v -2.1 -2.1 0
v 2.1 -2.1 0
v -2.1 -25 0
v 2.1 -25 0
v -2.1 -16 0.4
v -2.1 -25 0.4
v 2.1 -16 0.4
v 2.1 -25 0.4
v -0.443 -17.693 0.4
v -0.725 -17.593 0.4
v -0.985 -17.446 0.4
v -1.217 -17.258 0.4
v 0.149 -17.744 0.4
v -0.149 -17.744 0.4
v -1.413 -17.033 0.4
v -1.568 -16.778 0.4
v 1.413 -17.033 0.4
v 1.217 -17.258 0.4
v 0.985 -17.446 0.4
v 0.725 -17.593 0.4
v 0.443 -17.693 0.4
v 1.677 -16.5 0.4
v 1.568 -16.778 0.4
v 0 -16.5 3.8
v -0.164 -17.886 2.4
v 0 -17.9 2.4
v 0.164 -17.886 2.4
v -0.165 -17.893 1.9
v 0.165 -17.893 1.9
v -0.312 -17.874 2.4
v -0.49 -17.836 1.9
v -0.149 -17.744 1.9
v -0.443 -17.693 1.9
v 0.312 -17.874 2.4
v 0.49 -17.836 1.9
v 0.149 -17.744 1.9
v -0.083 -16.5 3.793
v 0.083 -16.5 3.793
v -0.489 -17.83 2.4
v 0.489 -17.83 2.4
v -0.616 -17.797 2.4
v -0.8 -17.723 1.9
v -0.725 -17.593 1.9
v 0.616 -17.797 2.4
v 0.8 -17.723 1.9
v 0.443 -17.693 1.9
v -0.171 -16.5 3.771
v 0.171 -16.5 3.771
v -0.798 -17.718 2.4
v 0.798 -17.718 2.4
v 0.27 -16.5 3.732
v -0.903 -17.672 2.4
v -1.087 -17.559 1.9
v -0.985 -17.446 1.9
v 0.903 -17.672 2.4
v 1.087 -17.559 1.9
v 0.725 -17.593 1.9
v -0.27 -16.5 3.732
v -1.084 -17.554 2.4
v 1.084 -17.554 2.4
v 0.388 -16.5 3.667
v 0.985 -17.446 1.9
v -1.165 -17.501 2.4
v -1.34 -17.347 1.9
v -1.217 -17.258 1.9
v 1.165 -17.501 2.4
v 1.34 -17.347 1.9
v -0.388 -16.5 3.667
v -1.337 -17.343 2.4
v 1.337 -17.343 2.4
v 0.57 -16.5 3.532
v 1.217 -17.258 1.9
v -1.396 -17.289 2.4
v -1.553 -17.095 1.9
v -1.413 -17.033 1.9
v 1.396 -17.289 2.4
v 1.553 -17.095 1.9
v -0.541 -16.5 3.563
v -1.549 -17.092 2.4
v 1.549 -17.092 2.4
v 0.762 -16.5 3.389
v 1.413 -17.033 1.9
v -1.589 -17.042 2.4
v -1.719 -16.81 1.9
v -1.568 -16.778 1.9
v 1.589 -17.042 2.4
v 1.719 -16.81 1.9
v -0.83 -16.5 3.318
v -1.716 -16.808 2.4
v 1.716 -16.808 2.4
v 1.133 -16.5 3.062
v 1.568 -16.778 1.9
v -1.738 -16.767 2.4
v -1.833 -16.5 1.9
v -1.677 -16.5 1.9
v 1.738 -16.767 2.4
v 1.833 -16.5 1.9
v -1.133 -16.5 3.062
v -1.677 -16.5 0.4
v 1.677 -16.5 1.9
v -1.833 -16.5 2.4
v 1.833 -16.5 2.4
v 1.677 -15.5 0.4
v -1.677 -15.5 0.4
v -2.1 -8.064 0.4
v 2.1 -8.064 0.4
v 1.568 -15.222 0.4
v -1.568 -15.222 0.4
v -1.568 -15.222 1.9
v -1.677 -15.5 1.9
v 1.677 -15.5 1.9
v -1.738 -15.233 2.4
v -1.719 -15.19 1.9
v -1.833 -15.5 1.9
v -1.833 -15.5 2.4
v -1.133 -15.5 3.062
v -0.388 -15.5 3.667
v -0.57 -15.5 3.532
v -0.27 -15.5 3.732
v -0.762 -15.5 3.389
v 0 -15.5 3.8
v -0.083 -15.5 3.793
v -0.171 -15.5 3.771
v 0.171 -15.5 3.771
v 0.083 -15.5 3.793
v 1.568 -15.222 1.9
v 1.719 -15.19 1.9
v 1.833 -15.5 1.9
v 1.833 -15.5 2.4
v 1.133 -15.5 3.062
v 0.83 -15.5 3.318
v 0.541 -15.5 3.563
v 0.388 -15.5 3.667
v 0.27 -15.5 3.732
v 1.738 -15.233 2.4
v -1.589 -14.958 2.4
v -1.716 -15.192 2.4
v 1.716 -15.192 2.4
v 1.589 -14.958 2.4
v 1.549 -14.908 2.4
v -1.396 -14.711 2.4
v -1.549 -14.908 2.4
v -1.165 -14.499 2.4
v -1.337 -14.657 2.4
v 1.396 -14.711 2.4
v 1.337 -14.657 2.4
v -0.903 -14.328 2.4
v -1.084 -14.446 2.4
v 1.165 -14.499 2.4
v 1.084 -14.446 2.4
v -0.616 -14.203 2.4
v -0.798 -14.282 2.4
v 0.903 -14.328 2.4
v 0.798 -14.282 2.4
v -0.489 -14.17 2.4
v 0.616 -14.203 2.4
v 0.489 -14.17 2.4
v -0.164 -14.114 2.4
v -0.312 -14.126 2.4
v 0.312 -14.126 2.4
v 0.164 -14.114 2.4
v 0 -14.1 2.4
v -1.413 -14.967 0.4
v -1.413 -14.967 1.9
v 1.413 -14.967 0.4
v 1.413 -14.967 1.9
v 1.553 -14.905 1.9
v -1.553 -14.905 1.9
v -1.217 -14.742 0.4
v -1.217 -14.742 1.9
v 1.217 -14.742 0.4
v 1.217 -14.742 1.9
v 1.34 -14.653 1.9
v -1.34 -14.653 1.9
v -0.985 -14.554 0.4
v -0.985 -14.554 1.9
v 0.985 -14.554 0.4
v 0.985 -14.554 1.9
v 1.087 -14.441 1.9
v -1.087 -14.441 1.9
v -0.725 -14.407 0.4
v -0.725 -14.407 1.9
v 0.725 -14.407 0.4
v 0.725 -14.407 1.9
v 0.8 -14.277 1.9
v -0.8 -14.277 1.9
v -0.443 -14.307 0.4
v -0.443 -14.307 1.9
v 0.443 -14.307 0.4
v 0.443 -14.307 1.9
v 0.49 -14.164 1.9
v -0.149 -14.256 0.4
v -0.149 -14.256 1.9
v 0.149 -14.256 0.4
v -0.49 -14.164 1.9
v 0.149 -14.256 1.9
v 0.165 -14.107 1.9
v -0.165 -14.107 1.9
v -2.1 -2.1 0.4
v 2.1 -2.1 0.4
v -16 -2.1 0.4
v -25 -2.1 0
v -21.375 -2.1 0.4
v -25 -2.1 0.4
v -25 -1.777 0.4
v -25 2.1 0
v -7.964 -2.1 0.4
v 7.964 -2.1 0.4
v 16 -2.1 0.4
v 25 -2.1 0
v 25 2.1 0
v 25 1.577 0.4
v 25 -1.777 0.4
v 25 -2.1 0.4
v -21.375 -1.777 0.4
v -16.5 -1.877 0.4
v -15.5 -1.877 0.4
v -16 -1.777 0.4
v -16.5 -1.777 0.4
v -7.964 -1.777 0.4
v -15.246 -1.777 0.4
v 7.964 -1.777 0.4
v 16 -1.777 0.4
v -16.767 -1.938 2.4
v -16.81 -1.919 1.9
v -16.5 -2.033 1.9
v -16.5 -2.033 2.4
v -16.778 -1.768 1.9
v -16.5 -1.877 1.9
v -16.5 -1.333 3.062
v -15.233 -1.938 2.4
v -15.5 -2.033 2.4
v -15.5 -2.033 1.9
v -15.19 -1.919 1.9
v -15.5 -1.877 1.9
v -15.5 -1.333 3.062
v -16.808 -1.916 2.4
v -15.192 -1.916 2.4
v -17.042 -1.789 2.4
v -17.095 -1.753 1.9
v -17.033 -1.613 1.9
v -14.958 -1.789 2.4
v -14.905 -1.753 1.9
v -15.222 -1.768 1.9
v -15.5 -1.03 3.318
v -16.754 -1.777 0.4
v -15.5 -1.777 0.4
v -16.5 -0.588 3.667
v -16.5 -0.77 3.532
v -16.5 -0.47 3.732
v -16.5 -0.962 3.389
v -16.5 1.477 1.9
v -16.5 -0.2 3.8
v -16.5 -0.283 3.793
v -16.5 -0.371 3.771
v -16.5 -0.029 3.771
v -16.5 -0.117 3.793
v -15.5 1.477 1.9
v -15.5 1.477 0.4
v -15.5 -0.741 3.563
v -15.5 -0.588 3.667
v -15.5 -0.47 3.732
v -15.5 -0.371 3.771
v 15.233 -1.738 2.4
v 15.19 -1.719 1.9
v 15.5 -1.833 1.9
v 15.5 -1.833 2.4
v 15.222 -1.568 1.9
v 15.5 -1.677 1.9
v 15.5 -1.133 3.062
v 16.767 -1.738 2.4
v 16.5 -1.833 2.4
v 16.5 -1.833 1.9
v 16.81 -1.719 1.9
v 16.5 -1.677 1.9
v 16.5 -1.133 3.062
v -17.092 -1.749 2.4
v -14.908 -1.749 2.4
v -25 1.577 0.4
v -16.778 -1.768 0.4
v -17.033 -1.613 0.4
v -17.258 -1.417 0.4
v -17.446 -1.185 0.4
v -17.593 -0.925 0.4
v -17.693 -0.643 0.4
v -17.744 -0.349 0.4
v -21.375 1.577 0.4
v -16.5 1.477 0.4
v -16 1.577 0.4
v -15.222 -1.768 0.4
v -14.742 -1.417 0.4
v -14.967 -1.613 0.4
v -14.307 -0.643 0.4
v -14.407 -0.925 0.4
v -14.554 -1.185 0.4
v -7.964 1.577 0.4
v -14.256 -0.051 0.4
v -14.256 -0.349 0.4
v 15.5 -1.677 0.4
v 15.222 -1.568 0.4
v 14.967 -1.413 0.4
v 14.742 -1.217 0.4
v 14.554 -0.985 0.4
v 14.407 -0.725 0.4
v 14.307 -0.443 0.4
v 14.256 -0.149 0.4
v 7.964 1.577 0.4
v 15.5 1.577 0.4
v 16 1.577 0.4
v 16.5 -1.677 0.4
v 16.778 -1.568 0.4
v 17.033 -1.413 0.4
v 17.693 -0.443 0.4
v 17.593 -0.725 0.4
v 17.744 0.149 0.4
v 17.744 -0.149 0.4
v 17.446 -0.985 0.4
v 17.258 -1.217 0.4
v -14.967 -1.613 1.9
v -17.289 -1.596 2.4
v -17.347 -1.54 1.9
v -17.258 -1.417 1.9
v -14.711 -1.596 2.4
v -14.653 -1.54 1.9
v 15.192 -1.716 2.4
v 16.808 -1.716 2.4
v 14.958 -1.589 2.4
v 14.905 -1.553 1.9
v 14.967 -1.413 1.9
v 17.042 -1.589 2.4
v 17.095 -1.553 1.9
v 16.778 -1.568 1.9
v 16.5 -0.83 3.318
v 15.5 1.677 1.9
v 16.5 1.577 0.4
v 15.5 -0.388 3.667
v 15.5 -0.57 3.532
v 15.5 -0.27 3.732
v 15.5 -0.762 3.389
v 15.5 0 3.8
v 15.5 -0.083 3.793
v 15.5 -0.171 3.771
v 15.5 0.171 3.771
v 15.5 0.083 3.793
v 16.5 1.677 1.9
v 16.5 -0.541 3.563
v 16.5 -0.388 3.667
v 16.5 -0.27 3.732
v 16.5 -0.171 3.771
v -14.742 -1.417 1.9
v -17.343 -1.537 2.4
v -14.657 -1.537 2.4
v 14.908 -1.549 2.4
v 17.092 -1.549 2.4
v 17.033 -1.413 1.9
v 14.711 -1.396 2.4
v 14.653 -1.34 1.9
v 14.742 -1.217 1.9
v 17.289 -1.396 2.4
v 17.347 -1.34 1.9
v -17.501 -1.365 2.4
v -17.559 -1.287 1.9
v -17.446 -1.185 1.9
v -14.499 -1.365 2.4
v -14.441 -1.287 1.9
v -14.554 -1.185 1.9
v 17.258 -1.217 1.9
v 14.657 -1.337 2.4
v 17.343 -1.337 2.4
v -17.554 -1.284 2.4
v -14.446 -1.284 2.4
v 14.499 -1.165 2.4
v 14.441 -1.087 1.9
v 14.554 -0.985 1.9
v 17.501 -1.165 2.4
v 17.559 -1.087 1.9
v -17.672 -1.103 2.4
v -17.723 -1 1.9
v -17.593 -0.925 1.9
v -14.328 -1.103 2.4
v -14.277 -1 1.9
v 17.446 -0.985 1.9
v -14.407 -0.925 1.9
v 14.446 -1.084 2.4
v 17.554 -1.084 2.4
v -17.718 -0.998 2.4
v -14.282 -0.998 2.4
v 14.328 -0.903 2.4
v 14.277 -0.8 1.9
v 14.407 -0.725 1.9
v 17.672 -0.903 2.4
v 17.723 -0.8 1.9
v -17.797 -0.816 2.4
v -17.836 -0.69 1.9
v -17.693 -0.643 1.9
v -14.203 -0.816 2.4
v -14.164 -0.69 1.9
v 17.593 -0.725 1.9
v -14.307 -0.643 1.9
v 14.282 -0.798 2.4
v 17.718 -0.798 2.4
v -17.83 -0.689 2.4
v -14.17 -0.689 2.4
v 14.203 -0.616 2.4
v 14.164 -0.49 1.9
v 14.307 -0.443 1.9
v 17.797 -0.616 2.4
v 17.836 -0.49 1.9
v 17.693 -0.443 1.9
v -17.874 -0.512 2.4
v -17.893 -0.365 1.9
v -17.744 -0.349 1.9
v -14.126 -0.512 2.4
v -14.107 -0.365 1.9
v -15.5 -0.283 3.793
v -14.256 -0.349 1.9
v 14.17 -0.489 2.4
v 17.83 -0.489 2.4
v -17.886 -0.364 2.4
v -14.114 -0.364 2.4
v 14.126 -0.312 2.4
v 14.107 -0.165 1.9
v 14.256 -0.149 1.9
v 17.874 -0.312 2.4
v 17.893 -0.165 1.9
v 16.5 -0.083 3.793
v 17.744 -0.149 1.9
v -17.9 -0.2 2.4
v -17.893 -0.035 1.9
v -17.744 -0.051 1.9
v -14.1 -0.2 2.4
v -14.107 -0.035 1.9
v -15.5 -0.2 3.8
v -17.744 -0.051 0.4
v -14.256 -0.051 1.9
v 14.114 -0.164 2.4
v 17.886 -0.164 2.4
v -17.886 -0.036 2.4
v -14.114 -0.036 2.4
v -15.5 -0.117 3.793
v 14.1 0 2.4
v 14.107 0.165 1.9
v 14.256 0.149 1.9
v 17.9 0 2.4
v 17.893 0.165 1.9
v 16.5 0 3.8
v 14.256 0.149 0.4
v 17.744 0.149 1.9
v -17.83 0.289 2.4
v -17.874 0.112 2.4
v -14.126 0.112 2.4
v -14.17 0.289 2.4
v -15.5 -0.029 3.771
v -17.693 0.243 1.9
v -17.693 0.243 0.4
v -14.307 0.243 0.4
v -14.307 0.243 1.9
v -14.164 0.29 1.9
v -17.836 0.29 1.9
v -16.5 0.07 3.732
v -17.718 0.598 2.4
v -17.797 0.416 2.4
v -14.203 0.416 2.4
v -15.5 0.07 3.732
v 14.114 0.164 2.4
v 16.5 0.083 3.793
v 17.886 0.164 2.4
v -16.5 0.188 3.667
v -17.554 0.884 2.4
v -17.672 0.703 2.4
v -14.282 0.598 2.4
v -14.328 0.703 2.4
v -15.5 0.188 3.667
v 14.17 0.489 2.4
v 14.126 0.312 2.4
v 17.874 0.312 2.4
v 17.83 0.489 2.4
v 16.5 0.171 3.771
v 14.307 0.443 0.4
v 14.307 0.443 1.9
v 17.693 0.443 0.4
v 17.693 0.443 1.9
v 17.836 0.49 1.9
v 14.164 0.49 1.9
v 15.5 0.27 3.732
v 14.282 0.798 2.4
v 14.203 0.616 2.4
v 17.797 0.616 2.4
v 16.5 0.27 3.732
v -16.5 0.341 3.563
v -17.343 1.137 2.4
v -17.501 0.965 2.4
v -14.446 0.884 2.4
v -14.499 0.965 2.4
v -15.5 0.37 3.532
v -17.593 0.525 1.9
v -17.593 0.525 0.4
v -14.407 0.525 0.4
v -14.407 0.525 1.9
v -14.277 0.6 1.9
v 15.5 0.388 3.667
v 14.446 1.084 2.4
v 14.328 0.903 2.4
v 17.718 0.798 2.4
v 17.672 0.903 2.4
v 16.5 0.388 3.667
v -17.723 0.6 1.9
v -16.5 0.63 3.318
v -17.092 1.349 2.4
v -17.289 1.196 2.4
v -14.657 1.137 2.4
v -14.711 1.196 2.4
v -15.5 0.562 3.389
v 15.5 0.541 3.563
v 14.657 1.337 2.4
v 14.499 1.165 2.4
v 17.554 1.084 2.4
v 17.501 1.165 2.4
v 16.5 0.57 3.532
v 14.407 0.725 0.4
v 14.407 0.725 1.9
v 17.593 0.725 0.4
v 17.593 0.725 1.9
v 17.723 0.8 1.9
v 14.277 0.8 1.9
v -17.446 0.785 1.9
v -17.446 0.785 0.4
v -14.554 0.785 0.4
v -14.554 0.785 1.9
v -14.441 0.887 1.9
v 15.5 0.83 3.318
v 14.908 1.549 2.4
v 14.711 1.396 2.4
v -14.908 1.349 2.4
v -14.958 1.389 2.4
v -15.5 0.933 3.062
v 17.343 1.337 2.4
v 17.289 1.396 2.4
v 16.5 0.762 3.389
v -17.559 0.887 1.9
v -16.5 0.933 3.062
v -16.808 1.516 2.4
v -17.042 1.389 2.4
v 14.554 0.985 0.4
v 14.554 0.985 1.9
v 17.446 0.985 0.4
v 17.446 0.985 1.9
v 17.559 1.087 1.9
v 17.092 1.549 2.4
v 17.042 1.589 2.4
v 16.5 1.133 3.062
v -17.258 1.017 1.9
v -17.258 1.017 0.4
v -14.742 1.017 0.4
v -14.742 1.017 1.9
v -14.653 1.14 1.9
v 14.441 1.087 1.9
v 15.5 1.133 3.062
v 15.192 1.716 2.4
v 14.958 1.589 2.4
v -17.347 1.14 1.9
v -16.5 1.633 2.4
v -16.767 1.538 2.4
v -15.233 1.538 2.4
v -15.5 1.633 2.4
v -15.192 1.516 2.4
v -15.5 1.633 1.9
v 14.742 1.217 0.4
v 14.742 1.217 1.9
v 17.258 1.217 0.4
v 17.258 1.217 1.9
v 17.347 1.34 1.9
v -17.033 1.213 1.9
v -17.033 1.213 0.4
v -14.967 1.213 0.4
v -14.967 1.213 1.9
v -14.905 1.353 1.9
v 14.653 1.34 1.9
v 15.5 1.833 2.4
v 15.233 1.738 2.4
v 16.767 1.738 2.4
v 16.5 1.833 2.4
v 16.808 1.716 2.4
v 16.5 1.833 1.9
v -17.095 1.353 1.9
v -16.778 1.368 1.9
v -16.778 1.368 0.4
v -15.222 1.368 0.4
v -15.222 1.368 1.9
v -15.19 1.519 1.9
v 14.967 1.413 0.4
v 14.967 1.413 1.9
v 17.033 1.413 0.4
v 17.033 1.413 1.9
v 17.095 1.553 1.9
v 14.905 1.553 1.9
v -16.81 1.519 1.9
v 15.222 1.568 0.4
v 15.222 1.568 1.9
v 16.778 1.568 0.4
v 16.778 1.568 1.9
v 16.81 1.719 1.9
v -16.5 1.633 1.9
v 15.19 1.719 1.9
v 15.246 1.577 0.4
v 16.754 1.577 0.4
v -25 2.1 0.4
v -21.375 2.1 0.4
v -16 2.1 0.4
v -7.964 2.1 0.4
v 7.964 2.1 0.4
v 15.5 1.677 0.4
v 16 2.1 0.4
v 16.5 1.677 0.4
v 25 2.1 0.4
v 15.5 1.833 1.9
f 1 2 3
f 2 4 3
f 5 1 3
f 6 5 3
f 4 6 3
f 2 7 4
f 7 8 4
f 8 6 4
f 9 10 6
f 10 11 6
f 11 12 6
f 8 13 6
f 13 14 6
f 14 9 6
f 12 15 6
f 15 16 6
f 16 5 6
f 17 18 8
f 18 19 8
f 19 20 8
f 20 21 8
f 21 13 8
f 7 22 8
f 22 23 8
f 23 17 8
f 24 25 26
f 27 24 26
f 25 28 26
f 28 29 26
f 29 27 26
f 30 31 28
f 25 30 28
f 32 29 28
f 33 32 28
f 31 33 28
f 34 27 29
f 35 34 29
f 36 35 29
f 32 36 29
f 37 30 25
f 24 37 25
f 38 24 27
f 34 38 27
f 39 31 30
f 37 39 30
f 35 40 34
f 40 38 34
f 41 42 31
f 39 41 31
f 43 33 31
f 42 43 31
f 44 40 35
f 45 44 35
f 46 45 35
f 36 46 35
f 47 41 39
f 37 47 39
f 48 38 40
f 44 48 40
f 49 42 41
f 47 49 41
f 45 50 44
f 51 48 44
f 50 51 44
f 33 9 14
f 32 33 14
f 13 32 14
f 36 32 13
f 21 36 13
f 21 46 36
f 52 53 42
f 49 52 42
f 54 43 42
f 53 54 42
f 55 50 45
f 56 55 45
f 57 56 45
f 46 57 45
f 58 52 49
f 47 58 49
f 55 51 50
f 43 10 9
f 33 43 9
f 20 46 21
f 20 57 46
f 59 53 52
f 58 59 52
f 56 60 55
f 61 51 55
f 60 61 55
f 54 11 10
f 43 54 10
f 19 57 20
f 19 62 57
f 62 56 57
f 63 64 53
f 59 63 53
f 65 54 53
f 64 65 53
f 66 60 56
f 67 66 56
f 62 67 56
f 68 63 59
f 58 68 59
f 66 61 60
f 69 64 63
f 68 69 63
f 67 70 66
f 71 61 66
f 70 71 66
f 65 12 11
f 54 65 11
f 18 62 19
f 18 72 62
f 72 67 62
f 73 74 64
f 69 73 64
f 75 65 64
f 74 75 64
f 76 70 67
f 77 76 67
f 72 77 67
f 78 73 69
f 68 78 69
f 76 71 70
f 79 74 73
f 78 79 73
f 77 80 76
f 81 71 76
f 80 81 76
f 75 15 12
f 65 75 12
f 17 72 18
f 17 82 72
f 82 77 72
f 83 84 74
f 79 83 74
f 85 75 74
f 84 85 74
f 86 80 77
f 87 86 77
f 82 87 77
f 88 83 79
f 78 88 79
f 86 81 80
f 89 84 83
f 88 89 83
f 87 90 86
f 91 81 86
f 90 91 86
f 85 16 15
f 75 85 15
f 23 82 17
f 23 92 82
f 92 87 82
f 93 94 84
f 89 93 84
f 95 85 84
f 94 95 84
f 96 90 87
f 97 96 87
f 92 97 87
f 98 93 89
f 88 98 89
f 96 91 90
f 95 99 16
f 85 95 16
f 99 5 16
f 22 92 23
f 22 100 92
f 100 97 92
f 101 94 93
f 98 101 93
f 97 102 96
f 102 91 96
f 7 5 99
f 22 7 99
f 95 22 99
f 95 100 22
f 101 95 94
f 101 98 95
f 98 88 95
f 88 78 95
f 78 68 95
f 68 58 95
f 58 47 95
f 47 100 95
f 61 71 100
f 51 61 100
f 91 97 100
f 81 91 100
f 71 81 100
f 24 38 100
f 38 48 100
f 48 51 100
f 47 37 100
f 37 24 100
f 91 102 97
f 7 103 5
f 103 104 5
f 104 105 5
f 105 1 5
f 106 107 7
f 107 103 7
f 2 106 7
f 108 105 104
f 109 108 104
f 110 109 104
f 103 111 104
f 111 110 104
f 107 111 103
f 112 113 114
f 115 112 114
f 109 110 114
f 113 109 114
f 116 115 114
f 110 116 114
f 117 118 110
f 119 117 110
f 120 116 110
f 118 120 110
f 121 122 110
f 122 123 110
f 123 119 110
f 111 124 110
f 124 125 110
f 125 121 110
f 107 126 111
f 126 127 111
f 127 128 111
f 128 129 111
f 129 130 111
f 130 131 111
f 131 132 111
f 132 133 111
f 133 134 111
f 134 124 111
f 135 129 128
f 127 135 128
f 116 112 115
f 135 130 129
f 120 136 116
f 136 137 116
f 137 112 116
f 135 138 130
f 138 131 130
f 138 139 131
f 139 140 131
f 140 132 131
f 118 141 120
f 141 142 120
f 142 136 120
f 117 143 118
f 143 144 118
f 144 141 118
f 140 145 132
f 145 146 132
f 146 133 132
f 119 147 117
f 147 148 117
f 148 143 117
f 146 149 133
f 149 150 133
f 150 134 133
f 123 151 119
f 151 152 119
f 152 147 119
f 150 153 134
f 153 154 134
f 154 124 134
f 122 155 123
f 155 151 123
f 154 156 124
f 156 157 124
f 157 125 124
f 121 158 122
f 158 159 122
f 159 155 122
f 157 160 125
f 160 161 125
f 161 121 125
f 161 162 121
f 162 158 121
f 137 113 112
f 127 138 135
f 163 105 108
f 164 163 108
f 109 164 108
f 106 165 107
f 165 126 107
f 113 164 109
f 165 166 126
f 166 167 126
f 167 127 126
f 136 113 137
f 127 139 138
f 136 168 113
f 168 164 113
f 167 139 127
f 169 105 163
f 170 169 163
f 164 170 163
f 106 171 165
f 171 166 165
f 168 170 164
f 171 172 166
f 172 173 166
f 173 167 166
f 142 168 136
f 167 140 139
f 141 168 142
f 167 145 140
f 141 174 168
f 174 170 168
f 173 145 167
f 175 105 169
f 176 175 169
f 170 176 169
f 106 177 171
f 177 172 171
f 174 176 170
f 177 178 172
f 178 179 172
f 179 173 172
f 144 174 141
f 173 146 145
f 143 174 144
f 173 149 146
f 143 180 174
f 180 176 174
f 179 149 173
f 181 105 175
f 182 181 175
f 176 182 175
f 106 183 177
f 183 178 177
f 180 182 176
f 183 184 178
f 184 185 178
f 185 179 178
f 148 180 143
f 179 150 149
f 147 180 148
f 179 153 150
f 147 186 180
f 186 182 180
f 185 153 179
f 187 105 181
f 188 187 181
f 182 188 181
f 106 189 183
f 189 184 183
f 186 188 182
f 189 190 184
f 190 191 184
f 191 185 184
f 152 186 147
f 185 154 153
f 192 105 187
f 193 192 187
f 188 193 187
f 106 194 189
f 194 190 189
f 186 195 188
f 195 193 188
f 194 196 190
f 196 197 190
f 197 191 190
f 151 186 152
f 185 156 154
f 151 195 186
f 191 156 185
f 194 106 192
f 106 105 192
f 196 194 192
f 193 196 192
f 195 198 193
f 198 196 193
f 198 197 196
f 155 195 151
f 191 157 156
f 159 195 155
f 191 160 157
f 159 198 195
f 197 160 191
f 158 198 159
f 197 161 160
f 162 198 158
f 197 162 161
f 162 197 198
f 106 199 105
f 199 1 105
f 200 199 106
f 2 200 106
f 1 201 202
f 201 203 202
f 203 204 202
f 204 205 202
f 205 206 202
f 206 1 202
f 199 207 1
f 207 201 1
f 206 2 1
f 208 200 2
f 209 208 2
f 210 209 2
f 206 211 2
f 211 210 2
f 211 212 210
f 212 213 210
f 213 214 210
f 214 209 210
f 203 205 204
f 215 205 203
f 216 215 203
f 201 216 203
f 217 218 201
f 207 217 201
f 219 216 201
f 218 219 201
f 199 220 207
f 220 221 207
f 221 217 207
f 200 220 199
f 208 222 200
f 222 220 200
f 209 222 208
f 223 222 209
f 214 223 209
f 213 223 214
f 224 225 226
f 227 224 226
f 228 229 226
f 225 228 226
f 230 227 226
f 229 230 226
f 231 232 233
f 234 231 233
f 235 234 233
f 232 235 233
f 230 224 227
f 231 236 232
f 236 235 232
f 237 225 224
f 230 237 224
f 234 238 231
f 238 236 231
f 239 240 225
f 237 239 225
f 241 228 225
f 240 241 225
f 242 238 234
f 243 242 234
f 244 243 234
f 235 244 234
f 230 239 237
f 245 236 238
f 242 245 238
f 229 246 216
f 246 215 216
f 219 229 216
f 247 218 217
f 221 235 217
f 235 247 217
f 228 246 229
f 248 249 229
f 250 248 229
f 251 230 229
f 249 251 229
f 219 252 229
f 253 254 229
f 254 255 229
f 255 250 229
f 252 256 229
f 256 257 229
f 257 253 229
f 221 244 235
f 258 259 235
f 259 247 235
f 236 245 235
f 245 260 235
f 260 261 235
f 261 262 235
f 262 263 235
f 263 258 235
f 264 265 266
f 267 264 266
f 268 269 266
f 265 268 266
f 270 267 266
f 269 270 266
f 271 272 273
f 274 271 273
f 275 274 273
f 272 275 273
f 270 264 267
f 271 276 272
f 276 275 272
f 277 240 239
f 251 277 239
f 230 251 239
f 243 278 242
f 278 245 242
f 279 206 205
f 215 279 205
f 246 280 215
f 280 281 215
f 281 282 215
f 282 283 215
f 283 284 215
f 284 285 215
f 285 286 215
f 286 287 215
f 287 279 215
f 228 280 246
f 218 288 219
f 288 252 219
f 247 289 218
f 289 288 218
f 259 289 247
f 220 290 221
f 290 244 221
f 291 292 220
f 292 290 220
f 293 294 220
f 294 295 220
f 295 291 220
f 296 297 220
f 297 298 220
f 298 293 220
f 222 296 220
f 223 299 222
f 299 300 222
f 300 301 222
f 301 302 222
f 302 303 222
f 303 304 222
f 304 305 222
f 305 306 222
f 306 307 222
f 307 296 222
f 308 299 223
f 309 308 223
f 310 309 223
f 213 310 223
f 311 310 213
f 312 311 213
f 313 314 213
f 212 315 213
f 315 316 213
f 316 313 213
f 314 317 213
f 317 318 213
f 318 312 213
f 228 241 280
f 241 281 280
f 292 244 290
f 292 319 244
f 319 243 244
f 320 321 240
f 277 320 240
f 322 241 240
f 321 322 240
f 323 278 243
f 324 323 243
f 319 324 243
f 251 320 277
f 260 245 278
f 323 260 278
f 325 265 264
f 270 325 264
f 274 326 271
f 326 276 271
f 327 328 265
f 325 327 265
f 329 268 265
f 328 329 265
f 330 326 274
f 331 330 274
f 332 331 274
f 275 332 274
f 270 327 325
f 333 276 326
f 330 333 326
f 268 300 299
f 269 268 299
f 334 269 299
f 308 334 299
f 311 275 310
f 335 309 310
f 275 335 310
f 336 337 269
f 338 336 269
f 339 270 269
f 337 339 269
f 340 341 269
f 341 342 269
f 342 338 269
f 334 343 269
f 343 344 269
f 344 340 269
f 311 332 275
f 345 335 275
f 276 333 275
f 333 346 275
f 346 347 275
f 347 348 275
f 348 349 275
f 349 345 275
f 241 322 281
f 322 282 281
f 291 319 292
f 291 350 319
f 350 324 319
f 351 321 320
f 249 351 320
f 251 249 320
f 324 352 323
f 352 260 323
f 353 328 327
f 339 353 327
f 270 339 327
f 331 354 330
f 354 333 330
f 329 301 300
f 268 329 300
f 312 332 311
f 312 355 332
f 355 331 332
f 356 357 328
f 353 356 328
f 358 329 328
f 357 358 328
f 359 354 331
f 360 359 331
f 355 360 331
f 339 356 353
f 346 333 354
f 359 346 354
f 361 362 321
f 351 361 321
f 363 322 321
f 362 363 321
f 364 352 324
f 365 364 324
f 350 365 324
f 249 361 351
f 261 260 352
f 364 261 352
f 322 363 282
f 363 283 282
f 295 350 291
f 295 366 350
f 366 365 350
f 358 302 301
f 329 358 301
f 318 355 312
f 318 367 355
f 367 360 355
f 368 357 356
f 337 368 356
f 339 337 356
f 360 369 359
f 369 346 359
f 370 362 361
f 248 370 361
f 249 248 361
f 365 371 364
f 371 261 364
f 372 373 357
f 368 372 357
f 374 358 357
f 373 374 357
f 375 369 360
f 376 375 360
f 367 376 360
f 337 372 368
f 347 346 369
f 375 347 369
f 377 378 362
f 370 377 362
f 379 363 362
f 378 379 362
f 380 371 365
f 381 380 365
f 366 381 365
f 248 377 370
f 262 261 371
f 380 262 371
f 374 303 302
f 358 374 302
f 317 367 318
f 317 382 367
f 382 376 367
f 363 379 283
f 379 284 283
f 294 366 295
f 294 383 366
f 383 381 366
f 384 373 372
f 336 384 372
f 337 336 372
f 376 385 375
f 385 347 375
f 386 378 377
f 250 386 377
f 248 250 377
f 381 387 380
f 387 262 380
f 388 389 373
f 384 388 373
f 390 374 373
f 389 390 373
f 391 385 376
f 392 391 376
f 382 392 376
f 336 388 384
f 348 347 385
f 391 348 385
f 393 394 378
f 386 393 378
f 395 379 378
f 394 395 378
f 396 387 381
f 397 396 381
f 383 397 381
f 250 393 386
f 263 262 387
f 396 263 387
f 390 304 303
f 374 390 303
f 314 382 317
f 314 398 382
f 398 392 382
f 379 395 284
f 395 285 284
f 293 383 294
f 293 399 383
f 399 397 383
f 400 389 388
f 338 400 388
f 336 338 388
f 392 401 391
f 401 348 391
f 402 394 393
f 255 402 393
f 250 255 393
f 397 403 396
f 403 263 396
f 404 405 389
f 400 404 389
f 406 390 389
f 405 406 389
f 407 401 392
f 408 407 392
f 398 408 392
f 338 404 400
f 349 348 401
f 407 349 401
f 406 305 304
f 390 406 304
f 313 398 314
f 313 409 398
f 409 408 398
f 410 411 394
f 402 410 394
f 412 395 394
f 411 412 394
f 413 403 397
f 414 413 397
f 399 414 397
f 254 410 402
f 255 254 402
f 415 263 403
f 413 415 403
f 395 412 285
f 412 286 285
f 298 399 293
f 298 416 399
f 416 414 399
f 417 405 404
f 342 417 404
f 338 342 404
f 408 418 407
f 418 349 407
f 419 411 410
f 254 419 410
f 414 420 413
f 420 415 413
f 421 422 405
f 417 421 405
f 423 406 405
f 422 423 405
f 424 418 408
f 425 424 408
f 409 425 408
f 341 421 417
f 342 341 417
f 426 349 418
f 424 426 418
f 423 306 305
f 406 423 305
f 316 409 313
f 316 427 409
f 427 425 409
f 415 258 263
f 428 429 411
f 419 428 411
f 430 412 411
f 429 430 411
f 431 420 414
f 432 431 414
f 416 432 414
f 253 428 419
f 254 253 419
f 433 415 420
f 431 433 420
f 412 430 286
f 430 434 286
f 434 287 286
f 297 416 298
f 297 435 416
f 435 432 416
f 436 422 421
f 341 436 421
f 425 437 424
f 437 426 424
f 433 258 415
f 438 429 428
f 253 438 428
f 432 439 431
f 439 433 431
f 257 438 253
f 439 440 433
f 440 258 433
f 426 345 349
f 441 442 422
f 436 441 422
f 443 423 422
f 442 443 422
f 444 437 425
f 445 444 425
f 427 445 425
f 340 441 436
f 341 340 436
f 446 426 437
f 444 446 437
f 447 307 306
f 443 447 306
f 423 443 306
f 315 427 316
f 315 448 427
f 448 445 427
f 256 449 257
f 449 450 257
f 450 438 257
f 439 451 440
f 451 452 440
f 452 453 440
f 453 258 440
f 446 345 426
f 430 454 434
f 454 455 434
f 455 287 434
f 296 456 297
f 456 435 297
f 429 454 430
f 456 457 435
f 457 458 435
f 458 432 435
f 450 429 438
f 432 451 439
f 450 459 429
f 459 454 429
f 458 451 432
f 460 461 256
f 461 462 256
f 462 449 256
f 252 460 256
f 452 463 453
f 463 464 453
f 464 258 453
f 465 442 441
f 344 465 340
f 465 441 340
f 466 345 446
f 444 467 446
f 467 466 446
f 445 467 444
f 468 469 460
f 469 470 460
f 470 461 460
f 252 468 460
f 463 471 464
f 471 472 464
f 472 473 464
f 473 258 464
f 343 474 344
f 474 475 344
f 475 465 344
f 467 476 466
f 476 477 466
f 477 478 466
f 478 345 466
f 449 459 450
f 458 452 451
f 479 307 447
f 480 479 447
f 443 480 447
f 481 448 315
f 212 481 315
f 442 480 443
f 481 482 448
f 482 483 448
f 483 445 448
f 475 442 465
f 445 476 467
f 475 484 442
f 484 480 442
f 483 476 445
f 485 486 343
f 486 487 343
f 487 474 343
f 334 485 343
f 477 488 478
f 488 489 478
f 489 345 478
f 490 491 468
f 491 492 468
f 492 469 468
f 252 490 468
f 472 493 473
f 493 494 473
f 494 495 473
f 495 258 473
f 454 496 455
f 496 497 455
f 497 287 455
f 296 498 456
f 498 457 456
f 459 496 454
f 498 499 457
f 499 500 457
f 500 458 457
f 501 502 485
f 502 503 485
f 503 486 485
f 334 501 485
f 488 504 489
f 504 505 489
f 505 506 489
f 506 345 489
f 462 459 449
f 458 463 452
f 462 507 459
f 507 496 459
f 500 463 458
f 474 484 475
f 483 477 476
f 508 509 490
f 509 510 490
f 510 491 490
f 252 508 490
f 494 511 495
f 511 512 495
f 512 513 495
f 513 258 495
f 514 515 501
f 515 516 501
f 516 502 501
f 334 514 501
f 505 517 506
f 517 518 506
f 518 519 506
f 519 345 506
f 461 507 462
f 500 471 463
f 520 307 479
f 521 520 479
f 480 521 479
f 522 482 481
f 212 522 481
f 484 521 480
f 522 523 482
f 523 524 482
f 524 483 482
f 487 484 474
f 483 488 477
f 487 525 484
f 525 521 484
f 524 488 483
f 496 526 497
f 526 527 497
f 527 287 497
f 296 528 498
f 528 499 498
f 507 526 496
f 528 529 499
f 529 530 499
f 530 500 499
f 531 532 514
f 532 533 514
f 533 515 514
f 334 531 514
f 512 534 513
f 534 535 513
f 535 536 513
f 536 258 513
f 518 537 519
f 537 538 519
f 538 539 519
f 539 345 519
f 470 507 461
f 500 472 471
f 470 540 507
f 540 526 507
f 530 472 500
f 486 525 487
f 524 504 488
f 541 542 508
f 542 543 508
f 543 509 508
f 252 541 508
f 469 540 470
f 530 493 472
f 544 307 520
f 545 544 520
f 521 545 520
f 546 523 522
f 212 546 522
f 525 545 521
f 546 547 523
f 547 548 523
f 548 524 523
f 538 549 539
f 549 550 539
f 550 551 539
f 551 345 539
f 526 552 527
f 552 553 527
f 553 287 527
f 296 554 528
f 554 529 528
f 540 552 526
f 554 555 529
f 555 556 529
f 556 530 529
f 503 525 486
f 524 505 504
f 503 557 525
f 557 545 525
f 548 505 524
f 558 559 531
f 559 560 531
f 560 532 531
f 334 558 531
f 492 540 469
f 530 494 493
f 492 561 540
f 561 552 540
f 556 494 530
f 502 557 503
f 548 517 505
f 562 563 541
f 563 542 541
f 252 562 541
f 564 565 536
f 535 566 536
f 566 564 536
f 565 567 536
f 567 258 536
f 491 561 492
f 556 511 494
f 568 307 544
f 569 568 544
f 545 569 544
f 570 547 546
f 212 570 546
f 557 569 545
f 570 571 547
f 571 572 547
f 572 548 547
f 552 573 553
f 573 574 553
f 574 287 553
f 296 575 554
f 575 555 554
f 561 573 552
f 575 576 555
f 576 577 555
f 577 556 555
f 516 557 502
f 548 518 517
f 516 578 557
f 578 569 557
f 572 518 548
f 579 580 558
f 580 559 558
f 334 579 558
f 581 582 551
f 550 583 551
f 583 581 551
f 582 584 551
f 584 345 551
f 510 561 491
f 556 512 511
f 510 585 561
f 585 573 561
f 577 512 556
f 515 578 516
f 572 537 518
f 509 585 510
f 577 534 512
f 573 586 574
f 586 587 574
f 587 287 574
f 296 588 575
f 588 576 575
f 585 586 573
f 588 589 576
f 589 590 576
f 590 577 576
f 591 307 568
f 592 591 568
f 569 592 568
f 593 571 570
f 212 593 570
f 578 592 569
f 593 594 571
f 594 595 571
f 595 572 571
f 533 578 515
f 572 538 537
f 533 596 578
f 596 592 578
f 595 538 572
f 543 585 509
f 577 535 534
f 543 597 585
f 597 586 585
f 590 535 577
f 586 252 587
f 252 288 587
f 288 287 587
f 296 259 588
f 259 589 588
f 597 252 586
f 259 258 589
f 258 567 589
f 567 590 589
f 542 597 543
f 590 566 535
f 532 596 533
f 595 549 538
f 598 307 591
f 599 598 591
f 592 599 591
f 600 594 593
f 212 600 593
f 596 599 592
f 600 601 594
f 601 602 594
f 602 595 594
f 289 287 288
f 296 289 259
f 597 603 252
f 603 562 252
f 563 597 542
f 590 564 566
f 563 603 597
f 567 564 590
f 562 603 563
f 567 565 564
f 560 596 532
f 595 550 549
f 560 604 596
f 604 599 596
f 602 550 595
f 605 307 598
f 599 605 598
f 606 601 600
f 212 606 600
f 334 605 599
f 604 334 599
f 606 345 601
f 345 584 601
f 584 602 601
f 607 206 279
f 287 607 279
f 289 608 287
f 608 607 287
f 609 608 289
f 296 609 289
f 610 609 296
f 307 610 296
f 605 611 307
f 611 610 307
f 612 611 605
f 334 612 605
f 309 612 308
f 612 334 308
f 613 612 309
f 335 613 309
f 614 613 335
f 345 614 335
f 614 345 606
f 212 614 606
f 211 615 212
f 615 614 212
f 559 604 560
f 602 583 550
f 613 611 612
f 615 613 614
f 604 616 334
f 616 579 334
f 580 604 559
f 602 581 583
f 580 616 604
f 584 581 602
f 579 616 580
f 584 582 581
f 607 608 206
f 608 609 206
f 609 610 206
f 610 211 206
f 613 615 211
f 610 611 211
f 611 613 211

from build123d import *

# Parameters (mm, degrees)
SKICA2_W                 = 50
SKICA2_H                 = 4.2
P_IDAT_VYSUNUT_M2_DEPTH  = 0.4
SKICA3_R                 = 1.75
P_IDAT_VYSUNUT_M3_DEPTH  = 1.5
SKICA5_R                 = 1.9
P_IDAT_VYSUNUT_M5_DEPTH  = 2
ZKOSEN_2_SIZE            = 1.5
SKICA7_W                 = 1
SKICA7_H                 = 5
ODEBRAT_VYSUNUT_M1_DEPTH = 3.5
SKICA8_W                 = 4.2
SKICA8_H                 = 22.9
P_IDAT_VYSUNUT_M6_DEPTH  = 0.4
SKICA9_R                 = 1.75
P_IDAT_VYSUNUT_M7_DEPTH  = 1.5
SKICA10_R                = 1.9
P_IDAT_VYSUNUT_M8_DEPTH  = 2
ZKOSEN_3_SIZE            = 1.5
SKICA12_W                = 5
SKICA12_H                = 1
ODEBRAT_VYSUNUT_M2_DEPTH = 3.5


with BuildPart() as part:
    # Skica2 → Přidat vysunutím2 (new body)
    with BuildSketch(Plane.XY):
        Rectangle(SKICA2_W, SKICA2_H)
    extrude(amount=P_IDAT_VYSUNUT_M2_DEPTH)

    # Skica3 → Přidat vysunutím3 (add)
    with BuildSketch(Plane.XY.offset(0.4)):
        with Locations((-16, -0.2)):
            Circle(SKICA3_R)
        with Locations((16, 0)):
            Circle(SKICA3_R)
    extrude(amount=P_IDAT_VYSUNUT_M3_DEPTH)

    # Skica5 → Přidat vysunutím5 (add)
    with BuildSketch(Plane.XY.offset(1.9)):
        with Locations((-16, -0.2)):
            Circle(SKICA5_R)
        with Locations((16, 0)):
            Circle(SKICA5_R)
    extrude(amount=P_IDAT_VYSUNUT_M5_DEPTH)

    # Zkosení2
    zkosen_2_edges = [part.edges().sort_by_distance(p)[0] for p in [
        (-17.9, -0.2, 3.9),
        (14.1, 0, 3.9),
    ]]
    chamfer(zkosen_2_edges, length=ZKOSEN_2_SIZE)

    # Skica7 → Odebrat vysunutím1 (cut)
    with BuildSketch(Plane.XY.offset(3.9)):
        with Locations((-16, -0.2)):
            Rectangle(SKICA7_W, SKICA7_H)
        with Locations((16, 0)):
            Rectangle(SKICA7_W, SKICA7_H)
    extrude(amount=-ODEBRAT_VYSUNUT_M1_DEPTH, mode=Mode.SUBTRACT)

    # Skica8 → Přidat vysunutím6 (add)
    with BuildSketch(Plane(origin=(0, 0, 0), x_dir=(-1, 0, 0), z_dir=(0, 0, -1))):
        with Locations((0, -13.55)):
            Rectangle(SKICA8_W, SKICA8_H)
    extrude(amount=-P_IDAT_VYSUNUT_M6_DEPTH)

    # Skica9 → Přidat vysunutím7 (add)
    with BuildSketch(Plane.XY.offset(0.4)):
        with Locations((0, -16)):
            Circle(SKICA9_R)
    extrude(amount=P_IDAT_VYSUNUT_M7_DEPTH)

    # Skica10 → Přidat vysunutím8 (add)
    with BuildSketch(Plane.XY.offset(1.9)):
        with Locations((0, -16)):
            Circle(SKICA10_R)
    extrude(amount=P_IDAT_VYSUNUT_M8_DEPTH)

    # Zkosení3
    zkosen_3_edges = [part.edges().sort_by_distance(p)[0] for p in [
        (-1.9, -16, 3.9),
    ]]
    chamfer(zkosen_3_edges, length=ZKOSEN_3_SIZE)

    # Skica12 → Odebrat vysunutím2 (cut)
    with BuildSketch(Plane.XY.offset(3.9)):
        with Locations((0, -16)):
            Rectangle(SKICA12_W, SKICA12_H)
    extrude(amount=-ODEBRAT_VYSUNUT_M2_DEPTH, mode=Mode.SUBTRACT)


solid = part.part
